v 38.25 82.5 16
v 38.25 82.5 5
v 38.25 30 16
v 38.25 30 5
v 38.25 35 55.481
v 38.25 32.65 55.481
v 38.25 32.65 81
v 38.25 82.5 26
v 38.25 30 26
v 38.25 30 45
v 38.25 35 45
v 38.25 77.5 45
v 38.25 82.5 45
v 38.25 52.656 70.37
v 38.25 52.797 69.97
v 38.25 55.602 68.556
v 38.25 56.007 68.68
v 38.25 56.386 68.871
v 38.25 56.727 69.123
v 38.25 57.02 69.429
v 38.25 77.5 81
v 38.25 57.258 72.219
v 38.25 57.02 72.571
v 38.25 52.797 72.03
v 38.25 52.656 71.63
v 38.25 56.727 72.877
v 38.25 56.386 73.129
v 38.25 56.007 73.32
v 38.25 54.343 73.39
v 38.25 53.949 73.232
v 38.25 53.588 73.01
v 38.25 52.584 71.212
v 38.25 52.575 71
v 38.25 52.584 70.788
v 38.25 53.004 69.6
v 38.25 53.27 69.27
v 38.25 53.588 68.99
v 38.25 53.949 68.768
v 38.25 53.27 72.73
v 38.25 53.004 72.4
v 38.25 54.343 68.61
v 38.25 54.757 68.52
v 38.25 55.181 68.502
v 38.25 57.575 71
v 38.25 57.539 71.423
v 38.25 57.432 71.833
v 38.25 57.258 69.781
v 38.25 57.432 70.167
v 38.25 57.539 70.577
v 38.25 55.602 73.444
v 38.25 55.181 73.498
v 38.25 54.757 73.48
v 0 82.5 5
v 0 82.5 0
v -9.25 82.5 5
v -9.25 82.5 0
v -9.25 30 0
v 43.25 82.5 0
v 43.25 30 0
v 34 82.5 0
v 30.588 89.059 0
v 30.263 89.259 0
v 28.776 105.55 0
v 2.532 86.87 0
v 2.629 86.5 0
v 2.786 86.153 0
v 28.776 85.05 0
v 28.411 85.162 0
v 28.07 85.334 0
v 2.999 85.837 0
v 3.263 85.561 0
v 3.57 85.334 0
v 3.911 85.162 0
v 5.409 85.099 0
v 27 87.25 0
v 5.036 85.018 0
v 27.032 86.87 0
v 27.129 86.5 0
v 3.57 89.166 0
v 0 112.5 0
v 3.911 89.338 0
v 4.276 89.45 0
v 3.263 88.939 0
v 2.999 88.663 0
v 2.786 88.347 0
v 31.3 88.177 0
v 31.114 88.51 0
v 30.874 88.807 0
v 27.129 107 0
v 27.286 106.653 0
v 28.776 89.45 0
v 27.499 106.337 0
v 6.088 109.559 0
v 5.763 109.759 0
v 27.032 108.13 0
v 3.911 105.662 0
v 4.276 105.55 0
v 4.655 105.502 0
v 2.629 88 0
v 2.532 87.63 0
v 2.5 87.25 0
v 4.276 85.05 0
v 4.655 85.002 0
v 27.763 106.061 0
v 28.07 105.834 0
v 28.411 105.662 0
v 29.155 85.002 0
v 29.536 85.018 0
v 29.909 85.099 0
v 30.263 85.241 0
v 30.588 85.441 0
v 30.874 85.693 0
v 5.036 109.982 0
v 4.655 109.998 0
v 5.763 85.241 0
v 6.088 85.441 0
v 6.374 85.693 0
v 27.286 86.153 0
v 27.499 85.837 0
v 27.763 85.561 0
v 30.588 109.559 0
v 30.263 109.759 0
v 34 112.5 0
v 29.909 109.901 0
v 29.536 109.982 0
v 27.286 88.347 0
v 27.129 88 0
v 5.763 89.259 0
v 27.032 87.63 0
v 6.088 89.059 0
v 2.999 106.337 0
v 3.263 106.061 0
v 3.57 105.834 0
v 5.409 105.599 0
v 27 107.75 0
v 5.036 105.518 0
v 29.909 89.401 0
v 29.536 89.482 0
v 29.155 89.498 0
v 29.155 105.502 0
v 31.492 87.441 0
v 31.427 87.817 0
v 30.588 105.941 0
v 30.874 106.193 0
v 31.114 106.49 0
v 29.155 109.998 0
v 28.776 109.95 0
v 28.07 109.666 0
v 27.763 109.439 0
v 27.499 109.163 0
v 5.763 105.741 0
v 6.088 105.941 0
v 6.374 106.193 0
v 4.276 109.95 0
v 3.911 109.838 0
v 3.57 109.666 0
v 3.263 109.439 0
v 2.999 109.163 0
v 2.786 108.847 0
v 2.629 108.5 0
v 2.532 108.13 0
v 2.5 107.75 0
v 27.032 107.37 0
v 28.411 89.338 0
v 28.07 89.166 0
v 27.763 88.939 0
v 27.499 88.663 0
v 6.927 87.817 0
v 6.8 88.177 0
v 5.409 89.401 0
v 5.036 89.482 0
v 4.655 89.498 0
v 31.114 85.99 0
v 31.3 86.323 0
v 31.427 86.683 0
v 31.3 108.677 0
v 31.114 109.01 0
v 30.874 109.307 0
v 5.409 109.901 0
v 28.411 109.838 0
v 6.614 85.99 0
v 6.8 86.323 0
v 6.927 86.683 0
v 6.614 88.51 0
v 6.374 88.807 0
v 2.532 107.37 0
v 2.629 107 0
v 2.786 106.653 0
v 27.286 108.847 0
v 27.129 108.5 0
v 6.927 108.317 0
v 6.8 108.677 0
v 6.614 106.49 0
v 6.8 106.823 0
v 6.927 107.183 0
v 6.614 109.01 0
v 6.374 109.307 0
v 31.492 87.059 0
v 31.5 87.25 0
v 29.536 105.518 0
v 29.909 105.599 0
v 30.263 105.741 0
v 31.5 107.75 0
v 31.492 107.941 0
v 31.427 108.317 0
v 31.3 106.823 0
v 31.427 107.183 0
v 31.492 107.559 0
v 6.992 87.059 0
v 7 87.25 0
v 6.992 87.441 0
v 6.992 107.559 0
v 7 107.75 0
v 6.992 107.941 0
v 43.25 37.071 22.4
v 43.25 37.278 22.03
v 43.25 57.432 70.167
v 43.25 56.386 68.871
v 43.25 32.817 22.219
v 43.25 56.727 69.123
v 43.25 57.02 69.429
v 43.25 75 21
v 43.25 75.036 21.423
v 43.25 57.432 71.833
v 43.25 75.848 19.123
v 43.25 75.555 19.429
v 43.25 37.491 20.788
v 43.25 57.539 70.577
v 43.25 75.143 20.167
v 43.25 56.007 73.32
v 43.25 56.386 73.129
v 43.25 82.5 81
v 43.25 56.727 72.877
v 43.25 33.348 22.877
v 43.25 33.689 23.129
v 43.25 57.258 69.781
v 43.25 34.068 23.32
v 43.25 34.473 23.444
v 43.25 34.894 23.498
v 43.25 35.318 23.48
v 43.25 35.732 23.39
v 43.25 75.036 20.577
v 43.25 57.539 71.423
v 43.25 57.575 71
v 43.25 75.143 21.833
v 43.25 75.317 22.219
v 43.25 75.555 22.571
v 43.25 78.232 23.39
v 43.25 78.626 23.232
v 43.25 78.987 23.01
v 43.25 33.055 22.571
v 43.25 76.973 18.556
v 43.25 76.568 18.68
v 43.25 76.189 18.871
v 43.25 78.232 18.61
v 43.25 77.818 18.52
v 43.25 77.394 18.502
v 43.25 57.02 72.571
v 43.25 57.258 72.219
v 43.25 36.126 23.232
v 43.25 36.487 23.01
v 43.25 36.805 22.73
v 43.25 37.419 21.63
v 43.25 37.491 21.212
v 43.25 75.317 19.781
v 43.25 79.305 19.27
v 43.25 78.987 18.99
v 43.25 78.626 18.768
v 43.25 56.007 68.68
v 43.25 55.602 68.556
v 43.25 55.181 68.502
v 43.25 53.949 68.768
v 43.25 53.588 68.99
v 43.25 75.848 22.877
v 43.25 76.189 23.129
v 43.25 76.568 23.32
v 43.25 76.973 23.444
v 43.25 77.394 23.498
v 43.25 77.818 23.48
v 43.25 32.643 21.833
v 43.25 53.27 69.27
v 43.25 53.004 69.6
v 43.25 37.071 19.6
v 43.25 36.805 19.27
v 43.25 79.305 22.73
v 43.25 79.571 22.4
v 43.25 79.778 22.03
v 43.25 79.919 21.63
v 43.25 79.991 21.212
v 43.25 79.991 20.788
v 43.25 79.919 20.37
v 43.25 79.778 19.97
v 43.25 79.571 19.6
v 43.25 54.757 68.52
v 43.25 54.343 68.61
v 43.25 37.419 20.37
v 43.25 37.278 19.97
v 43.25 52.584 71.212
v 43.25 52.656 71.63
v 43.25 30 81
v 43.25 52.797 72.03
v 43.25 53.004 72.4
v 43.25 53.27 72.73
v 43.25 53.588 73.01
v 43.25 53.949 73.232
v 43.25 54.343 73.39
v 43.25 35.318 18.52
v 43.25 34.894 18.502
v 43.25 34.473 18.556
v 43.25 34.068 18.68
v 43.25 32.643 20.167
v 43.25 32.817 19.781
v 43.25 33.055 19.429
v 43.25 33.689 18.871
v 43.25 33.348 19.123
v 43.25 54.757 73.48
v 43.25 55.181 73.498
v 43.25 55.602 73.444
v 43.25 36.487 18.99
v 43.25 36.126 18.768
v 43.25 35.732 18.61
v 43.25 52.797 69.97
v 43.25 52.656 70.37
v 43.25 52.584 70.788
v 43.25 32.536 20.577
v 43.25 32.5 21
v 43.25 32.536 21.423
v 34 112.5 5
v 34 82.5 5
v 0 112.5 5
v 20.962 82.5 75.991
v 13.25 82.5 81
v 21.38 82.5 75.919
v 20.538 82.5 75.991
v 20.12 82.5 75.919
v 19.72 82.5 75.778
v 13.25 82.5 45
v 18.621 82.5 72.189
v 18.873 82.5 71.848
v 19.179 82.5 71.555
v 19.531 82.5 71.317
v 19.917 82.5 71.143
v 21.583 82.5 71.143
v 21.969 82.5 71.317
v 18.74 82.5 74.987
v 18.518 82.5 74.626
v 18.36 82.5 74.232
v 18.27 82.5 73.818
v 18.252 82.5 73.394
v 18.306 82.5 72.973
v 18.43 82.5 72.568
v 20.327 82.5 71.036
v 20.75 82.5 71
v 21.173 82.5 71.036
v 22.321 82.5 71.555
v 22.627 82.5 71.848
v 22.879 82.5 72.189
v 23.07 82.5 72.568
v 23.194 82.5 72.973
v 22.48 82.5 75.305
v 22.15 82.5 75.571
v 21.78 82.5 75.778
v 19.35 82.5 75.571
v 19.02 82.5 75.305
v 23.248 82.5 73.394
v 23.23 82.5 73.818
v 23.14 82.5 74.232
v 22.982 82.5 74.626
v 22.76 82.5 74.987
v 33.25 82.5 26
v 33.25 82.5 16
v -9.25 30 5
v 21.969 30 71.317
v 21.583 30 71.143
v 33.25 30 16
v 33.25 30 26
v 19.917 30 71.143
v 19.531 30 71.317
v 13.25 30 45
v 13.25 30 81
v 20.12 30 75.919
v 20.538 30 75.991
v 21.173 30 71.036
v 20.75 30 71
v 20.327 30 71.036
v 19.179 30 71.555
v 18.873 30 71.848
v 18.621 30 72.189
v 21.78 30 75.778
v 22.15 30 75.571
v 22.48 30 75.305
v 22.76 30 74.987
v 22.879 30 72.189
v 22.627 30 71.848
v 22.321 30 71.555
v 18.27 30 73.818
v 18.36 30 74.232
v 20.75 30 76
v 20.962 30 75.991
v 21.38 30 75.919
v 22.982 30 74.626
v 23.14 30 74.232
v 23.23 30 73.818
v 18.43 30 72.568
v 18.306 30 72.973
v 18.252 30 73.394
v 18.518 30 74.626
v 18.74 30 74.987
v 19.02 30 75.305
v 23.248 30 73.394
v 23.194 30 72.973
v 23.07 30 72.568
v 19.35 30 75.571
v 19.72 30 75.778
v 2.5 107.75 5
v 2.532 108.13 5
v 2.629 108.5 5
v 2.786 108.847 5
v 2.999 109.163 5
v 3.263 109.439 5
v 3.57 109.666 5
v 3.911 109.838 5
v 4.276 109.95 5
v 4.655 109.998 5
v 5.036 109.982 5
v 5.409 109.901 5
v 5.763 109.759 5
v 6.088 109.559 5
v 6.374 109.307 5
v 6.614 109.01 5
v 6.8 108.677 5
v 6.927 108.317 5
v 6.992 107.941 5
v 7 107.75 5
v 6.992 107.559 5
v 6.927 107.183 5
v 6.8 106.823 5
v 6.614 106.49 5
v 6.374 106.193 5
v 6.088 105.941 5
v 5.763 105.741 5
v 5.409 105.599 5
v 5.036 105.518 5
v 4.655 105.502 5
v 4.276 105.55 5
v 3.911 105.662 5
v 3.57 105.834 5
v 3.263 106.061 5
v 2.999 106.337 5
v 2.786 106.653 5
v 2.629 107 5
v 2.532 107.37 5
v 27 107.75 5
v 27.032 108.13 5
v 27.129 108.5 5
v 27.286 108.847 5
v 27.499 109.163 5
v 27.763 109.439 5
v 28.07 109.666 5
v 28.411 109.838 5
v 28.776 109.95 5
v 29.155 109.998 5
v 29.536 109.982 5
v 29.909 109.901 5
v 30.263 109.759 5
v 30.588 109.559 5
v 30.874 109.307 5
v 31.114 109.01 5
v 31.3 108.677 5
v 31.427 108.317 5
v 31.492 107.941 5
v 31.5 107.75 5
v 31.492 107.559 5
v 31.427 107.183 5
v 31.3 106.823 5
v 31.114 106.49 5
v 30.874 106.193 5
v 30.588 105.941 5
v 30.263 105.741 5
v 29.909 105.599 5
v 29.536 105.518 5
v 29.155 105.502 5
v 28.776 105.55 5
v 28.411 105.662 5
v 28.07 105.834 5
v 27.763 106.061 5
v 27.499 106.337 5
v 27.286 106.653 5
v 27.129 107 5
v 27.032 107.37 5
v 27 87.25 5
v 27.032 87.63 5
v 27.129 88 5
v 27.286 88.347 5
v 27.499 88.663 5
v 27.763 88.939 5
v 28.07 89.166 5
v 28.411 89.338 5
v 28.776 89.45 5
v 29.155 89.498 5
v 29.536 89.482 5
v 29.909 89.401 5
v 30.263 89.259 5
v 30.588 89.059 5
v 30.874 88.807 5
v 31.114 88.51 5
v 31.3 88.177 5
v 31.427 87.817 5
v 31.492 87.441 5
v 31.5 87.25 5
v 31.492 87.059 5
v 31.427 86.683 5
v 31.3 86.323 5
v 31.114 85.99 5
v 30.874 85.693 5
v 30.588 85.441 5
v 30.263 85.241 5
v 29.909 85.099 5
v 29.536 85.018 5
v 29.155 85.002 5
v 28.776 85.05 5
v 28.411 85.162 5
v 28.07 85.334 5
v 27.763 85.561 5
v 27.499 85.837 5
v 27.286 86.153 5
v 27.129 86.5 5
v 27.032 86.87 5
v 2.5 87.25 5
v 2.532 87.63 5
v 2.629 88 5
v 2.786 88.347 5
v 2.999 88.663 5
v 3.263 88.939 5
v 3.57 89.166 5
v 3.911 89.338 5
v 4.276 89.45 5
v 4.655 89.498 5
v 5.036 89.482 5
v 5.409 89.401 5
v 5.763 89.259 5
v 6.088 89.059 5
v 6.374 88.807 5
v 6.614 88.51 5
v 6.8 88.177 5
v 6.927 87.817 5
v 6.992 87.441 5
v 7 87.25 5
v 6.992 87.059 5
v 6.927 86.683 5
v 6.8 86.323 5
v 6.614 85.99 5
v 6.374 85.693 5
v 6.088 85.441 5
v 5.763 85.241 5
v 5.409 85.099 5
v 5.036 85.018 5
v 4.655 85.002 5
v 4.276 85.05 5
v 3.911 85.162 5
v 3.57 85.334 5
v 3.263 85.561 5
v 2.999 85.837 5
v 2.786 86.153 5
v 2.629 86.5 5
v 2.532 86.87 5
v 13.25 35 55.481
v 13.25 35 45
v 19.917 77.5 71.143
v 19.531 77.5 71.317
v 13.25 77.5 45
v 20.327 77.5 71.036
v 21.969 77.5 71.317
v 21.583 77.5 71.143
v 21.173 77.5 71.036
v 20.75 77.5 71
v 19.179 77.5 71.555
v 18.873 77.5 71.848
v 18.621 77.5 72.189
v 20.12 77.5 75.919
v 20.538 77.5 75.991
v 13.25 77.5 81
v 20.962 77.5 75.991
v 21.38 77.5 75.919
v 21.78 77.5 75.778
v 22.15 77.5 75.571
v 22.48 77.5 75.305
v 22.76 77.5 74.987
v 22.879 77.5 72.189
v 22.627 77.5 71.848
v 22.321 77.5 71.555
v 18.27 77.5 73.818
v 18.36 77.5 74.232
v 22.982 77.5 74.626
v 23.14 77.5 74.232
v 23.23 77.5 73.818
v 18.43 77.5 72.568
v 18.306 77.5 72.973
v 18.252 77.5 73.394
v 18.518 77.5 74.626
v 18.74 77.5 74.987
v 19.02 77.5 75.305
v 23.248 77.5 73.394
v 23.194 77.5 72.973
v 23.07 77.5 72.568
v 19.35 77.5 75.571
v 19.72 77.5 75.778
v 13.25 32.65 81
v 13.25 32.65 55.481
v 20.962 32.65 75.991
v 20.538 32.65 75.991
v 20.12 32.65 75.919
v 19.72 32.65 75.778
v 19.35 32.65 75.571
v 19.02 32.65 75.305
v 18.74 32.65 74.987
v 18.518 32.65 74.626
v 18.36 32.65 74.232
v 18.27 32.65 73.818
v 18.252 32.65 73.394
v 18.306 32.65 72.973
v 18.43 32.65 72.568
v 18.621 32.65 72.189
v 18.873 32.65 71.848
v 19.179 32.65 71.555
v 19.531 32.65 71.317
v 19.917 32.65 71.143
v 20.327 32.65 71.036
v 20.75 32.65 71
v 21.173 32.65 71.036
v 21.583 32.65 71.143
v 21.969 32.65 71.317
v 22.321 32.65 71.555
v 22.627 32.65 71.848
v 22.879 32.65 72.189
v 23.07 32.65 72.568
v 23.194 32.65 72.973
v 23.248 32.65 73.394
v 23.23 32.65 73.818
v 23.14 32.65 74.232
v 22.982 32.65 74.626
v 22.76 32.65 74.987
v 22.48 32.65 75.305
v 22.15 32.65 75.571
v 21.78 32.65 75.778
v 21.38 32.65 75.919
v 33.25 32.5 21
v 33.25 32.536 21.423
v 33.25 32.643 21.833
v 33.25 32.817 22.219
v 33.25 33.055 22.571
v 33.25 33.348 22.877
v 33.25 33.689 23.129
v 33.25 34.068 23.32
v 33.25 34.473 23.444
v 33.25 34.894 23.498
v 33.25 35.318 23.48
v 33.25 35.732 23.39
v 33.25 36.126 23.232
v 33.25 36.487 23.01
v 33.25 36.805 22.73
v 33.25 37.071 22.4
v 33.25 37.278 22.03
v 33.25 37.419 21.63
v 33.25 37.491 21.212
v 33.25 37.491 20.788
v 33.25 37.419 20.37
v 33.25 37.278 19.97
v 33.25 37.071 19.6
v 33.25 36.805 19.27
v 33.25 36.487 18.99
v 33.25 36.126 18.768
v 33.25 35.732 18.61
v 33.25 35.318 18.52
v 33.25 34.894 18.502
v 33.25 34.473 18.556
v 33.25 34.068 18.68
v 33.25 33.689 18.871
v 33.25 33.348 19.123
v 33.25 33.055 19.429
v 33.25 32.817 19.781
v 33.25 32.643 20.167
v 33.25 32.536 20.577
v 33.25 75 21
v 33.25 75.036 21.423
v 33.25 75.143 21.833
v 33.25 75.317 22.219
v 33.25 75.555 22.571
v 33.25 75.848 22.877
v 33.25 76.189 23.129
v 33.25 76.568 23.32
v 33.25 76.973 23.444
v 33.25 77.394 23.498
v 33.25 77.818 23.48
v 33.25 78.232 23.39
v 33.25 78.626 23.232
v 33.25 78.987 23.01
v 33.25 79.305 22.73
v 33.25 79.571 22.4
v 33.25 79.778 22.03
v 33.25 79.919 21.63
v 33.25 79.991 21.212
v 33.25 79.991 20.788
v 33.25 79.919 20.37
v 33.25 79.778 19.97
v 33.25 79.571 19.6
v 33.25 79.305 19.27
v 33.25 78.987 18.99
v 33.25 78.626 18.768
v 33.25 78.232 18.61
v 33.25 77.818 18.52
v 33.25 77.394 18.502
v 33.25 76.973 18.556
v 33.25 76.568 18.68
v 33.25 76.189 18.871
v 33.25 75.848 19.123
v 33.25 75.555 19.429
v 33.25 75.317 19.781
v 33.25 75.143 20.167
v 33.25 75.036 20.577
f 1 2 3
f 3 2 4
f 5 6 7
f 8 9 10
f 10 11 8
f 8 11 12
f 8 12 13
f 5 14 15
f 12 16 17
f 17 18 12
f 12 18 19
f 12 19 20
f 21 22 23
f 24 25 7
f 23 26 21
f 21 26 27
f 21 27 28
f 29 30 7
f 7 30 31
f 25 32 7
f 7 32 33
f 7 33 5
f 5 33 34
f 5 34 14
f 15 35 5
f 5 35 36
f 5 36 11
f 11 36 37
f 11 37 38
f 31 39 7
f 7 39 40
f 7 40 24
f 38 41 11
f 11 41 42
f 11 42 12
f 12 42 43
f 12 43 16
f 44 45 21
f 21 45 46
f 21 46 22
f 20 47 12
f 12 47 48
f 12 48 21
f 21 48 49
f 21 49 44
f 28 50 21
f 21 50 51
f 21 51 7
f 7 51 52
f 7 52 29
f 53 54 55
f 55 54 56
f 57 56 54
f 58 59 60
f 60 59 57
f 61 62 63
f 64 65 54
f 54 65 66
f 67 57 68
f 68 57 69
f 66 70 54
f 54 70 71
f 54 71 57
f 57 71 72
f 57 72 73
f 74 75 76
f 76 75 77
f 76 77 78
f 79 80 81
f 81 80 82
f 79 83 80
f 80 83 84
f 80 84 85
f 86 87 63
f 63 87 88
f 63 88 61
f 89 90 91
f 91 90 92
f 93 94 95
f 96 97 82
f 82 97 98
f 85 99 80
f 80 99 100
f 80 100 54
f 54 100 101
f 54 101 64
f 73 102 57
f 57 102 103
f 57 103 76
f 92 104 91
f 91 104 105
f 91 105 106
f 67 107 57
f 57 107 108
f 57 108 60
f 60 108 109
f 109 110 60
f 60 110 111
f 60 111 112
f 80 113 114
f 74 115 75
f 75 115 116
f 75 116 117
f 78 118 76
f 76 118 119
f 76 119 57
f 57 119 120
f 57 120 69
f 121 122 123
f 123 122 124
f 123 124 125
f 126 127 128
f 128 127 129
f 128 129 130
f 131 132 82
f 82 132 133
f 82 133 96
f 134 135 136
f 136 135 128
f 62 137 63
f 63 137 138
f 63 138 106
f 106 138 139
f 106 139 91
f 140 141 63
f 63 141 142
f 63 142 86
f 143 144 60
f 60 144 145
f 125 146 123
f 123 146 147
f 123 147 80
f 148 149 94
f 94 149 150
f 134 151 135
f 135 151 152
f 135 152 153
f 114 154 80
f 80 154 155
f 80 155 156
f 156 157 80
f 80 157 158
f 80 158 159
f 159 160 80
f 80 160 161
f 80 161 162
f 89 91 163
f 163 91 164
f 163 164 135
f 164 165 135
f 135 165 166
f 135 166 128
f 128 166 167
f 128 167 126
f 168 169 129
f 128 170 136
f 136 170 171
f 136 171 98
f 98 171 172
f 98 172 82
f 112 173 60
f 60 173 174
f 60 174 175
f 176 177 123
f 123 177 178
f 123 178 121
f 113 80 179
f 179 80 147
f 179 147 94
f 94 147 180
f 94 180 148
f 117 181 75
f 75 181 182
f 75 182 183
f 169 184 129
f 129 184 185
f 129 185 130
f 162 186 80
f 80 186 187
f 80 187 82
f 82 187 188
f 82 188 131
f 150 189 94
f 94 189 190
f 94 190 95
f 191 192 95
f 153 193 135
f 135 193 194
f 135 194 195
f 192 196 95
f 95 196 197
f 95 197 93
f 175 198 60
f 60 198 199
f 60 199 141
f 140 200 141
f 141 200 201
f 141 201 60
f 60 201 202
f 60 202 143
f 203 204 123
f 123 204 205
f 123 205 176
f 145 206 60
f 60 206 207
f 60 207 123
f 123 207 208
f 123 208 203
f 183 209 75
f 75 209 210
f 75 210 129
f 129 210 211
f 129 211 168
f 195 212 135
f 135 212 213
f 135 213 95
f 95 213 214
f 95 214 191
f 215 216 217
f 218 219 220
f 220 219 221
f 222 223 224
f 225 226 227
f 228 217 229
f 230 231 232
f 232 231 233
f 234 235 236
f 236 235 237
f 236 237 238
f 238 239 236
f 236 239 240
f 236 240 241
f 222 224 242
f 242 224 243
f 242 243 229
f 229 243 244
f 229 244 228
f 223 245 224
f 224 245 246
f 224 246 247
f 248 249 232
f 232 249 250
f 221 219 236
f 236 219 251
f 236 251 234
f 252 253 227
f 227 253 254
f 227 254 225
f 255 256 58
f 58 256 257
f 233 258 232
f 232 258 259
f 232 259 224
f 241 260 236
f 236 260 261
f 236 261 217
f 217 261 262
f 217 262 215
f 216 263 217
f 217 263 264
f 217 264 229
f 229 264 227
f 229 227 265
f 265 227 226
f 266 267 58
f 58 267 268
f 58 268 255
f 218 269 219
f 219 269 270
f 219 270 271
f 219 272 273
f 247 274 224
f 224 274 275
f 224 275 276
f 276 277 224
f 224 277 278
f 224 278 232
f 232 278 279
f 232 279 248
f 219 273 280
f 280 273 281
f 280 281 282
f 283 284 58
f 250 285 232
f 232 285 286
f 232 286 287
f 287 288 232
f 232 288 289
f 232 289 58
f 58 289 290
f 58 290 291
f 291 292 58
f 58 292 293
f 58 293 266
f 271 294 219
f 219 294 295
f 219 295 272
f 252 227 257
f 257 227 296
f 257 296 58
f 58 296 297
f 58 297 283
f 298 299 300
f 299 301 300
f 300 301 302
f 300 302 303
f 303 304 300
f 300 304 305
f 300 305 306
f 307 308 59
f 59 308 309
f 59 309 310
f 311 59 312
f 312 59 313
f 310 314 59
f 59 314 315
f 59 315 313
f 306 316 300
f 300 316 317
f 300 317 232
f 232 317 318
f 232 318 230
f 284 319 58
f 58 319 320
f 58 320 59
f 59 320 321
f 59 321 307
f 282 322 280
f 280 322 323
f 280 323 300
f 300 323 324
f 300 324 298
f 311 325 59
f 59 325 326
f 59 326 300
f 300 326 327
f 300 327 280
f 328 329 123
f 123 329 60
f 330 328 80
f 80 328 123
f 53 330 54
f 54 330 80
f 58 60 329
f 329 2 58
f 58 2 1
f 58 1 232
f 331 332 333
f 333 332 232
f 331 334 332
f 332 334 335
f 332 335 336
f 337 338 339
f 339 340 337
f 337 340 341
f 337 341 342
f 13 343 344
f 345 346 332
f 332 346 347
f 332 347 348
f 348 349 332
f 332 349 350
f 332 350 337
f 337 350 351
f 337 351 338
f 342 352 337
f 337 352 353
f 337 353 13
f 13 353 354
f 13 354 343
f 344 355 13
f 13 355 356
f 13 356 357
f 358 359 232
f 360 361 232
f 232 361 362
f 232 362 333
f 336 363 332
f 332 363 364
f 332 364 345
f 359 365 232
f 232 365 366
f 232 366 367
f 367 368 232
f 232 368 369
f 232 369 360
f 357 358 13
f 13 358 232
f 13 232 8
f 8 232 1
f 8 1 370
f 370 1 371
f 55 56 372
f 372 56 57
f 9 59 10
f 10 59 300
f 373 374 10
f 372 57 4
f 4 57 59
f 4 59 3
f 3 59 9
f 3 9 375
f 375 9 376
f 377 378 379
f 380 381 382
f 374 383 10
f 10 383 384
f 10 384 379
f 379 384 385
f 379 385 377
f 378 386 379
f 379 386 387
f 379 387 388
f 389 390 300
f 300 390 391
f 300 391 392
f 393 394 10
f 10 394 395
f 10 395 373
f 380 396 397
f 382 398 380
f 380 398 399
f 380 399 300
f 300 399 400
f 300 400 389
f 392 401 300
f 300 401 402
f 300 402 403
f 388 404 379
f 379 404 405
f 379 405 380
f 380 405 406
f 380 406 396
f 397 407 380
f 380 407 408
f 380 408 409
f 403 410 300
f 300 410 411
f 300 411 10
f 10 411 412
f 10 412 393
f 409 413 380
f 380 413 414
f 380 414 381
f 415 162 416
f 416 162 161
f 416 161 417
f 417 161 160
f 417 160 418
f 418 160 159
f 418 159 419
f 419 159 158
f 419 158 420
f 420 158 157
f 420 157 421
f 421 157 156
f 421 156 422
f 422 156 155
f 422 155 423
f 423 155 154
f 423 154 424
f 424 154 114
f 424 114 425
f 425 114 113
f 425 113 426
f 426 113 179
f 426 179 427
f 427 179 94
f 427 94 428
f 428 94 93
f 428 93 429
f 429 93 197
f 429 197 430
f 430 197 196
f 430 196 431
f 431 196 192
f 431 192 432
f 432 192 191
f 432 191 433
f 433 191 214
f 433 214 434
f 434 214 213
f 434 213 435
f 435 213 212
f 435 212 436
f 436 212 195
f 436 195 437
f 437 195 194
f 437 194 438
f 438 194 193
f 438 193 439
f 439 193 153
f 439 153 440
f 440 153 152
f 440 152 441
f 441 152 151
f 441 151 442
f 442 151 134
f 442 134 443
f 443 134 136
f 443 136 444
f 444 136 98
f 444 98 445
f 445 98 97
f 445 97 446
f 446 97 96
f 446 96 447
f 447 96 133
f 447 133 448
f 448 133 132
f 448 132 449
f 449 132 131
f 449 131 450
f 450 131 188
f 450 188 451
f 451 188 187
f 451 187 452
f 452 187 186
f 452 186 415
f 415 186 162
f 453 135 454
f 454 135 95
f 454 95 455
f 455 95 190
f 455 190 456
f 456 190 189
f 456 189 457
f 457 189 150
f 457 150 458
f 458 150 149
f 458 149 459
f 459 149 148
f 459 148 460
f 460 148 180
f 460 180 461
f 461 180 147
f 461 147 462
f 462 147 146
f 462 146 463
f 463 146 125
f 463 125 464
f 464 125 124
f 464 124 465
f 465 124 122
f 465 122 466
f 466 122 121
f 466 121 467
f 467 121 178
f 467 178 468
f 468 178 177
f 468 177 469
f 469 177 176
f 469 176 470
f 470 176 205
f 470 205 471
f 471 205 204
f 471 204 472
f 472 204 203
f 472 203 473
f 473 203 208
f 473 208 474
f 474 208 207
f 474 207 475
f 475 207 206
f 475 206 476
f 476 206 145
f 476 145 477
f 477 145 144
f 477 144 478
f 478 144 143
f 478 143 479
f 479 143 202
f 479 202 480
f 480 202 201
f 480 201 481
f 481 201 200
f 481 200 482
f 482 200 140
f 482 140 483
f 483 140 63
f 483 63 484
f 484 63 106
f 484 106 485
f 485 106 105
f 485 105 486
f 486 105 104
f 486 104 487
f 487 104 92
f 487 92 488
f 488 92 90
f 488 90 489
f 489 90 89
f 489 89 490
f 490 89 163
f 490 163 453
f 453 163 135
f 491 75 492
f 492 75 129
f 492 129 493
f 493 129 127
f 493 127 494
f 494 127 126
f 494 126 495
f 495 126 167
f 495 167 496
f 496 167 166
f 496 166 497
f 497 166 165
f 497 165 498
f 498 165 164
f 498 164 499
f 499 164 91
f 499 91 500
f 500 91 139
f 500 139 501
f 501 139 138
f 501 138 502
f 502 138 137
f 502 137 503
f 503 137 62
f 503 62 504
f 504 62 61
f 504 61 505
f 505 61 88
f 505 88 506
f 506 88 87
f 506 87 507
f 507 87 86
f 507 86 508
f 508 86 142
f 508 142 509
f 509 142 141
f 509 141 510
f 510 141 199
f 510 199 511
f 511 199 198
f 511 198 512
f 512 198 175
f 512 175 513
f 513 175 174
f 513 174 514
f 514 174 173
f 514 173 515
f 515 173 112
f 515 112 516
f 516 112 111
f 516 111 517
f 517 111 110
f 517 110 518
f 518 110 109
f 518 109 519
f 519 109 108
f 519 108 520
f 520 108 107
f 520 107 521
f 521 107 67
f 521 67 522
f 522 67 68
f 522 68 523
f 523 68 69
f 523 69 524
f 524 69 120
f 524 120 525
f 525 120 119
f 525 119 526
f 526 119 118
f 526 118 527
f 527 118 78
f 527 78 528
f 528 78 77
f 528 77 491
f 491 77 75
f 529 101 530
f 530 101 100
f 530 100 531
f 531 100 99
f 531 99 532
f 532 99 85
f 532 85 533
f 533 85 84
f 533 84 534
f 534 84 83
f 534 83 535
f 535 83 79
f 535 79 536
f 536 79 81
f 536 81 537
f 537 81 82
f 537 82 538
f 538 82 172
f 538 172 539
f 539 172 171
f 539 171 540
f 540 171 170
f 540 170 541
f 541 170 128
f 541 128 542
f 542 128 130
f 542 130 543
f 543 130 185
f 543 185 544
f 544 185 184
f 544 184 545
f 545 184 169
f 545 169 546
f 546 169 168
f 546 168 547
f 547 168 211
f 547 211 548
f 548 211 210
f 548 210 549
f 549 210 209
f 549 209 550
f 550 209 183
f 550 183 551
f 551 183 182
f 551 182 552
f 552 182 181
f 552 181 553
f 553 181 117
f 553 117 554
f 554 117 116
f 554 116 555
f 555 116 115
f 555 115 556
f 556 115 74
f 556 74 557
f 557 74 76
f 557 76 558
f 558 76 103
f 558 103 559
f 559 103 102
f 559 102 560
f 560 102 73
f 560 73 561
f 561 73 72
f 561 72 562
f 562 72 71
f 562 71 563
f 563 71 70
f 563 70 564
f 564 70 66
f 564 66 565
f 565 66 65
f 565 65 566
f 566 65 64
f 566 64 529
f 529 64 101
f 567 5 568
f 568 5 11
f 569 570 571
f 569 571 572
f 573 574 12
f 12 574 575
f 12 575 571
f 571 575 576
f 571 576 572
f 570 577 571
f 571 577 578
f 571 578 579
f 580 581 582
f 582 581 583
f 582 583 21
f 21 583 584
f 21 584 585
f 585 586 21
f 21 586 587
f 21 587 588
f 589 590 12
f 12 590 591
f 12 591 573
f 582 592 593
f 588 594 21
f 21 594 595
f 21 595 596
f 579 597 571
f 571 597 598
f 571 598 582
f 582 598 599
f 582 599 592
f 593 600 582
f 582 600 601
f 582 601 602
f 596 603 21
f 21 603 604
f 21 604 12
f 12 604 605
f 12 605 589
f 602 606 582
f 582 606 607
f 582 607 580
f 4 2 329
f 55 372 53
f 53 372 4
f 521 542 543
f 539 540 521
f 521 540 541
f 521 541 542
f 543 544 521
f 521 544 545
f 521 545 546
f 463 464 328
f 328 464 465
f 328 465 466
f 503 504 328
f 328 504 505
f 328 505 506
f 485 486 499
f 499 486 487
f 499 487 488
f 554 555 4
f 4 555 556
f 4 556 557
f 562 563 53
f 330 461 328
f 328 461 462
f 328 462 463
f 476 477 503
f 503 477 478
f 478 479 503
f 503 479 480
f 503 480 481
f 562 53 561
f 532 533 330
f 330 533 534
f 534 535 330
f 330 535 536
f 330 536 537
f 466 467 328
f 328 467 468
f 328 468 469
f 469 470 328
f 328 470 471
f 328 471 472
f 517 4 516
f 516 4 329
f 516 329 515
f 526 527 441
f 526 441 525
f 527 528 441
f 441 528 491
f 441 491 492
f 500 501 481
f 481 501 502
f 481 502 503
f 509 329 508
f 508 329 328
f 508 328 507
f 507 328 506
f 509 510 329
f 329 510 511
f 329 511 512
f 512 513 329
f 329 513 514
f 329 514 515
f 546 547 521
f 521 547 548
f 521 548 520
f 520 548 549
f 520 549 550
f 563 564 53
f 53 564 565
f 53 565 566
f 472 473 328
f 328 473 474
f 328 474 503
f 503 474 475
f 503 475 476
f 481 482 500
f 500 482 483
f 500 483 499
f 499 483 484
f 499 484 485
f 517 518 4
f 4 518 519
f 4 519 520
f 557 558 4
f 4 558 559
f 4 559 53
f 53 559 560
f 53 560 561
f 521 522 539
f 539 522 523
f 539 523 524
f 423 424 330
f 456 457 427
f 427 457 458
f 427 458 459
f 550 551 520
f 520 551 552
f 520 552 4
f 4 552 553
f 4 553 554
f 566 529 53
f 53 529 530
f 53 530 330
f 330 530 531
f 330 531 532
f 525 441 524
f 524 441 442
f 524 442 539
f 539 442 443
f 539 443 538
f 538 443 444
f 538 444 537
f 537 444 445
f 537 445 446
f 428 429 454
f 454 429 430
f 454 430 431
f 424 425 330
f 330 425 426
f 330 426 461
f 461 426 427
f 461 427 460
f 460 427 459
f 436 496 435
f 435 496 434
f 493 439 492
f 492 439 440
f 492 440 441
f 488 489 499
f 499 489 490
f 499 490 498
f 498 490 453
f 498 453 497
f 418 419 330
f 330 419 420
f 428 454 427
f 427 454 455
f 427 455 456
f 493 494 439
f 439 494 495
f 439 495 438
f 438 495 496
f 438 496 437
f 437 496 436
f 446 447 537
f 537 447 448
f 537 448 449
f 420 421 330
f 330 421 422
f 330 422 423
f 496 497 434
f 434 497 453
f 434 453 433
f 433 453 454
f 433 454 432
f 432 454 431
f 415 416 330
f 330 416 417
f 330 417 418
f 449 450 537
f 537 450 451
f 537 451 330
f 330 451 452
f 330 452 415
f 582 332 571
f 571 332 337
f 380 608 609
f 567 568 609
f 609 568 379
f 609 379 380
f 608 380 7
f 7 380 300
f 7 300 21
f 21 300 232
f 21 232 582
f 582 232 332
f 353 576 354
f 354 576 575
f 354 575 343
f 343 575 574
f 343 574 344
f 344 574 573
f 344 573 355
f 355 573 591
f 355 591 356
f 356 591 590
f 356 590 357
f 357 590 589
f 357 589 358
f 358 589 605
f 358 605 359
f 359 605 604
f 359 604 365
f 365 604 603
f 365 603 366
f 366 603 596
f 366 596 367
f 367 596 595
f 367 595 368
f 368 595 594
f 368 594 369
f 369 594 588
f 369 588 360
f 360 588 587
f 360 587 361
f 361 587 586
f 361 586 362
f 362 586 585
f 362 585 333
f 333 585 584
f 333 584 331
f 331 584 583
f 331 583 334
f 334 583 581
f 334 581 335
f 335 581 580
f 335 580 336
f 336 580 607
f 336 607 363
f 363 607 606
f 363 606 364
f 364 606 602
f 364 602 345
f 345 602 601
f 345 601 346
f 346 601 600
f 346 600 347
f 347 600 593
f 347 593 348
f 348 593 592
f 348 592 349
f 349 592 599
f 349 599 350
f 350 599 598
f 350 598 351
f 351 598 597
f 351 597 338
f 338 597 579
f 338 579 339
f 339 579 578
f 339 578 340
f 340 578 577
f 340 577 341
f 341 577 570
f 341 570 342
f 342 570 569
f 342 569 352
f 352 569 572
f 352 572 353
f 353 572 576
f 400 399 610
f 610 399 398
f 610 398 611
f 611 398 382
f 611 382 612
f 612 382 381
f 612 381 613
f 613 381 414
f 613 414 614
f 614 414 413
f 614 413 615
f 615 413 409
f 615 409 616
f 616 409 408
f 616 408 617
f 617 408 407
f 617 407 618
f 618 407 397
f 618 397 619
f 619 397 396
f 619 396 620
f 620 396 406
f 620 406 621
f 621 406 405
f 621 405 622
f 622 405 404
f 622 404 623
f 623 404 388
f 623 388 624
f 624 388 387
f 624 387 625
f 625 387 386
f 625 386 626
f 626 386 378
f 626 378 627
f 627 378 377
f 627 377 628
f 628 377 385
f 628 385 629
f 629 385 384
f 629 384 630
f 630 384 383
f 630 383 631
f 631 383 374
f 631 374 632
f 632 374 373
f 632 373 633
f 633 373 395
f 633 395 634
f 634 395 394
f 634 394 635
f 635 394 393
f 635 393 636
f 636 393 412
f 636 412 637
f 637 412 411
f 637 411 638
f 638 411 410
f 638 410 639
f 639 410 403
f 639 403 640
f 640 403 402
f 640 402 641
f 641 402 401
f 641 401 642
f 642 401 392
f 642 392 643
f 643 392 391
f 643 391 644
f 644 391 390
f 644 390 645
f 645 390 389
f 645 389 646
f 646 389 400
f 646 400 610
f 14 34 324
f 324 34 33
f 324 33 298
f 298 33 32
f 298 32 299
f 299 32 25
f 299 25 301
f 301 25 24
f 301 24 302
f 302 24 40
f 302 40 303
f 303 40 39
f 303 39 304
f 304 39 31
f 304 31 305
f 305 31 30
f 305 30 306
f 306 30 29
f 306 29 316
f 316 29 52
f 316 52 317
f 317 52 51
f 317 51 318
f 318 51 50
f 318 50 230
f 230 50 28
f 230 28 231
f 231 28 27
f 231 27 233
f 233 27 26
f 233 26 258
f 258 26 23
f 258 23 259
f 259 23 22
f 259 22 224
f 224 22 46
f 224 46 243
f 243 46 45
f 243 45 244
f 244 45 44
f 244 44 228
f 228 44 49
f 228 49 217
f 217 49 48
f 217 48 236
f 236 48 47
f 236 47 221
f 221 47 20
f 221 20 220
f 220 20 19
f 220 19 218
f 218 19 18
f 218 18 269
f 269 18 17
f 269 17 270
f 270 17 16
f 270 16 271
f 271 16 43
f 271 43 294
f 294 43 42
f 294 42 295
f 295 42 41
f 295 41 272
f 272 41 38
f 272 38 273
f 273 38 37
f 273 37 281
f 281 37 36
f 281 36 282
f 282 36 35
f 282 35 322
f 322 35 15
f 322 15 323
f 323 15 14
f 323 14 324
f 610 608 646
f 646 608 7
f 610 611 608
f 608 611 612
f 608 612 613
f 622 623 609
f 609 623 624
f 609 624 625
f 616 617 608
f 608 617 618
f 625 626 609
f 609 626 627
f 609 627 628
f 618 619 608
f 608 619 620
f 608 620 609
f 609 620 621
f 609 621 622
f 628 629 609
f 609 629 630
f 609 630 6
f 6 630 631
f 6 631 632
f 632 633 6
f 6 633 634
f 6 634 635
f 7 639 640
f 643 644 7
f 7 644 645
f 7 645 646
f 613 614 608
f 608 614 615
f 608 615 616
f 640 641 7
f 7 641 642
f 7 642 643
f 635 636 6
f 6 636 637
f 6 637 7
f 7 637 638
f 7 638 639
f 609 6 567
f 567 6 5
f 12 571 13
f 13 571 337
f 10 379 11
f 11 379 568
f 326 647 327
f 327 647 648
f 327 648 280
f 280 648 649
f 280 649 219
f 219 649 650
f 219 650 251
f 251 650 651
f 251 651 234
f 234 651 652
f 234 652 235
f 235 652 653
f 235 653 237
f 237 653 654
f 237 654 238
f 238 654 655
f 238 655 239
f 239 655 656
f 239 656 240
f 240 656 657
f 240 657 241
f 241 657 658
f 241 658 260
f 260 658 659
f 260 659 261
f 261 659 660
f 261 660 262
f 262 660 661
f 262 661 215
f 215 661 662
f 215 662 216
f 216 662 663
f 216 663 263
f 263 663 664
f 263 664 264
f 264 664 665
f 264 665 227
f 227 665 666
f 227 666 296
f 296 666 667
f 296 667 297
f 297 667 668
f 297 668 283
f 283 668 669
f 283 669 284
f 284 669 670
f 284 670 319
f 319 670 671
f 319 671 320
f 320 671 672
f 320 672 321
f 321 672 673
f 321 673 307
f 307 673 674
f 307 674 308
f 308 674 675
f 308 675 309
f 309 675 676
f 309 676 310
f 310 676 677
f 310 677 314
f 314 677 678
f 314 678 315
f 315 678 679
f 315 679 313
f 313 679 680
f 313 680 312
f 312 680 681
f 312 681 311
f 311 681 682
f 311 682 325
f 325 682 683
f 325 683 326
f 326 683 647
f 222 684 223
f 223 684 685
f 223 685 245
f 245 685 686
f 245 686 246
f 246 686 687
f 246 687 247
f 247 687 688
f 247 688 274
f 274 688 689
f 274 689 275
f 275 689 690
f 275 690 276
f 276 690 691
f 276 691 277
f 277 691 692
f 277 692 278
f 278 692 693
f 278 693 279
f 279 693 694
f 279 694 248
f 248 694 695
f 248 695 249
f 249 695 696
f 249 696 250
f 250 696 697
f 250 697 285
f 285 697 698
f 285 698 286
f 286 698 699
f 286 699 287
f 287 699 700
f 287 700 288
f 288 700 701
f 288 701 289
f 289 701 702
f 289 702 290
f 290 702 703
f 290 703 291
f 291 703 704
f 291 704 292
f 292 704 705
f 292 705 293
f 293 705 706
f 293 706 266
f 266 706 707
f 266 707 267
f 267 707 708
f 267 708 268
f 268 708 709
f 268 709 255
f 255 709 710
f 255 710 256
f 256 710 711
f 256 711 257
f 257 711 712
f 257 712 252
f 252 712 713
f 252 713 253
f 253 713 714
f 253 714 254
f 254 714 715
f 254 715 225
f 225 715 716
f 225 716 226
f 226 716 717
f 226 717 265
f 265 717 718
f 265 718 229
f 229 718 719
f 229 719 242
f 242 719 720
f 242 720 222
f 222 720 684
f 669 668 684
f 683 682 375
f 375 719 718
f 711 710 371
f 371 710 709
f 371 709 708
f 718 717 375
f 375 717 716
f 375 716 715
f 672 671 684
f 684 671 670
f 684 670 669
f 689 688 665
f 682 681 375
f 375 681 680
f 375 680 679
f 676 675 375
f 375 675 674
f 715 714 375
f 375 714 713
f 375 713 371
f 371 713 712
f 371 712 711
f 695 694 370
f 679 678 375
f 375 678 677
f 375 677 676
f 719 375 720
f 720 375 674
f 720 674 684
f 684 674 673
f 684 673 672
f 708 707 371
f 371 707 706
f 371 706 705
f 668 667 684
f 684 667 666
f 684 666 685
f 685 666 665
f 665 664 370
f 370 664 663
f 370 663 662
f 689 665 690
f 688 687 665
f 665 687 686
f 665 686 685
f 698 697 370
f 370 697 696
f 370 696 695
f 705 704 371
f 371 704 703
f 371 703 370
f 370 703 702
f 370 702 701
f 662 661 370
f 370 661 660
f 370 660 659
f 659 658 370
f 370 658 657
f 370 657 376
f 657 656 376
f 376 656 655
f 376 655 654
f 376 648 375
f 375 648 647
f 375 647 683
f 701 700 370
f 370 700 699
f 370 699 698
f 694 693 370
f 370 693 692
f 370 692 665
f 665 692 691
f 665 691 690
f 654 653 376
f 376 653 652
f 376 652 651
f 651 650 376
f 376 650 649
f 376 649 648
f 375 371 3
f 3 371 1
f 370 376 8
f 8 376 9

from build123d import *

# Parameters (mm, degrees)
SKETCH1_R               = 2.25
BOSS_EXTRUDE1_DEPTH     = 5
SKETCH2_W               = 52.5
SKETCH2_H               = 52.5
SKETCH2_W_2             = 42.5
SKETCH2_H_2             = 42.5
BOSS_EXTRUDE2_DEPTH     = 40
BOSS_EXTRUDE3_DEPTH     = 36
CUT_EXTRUDE2_DEPTH      = 121.157448791
CUT_EXTRUDE2_DEPTH_BACK = 121.157448791
SKETCH6_R               = 2.5
CUT_EXTRUDE3_DEPTH      = 149.234611343
CUT_EXTRUDE3_DEPTH_BACK = 149.234611343
SKETCH7_R               = 2.5
SKETCH8_W               = 40
SKETCH8_H               = 36.5
CUT_EXTRUDE4_DEPTH      = 24
SKETCH9_W               = 25
SKETCH9_H               = 25.519409936
CUT_EXTRUDE5_DEPTH      = 2.35
SKETCH10_W              = 5
SKETCH10_H              = 30
CUT_EXTRUDE6_DEPTH      = 119
SKETCH11_W              = 40
SKETCH11_H              = 52.5
CUT_EXTRUDE7_DEPTH      = 47.5
SKETCH12_R              = 2.5
CUT_EXTRUDE8_DEPTH      = 119
BOSS_EXTRUDE4_START     = 5
SKETCH13_W              = 10
SKETCH13_H              = 52.5
SKETCH13_R              = 2.5
BOSS_EXTRUDE4_DEPTH     = 5


with BuildPart() as part:
    # Sketch1 → Boss-Extrude1 (new body)
    with BuildSketch(Plane.XY):
        Polygon((0, 30), (-9.25, 30), (-9.25, 82.5), (0, 82.5), (0, 112.5), (34, 112.5), (34, 82.5), (43.25, 82.5), (43.25, 30), (34, 30), (34, 0), (0, 0), align=None)
        with Locations((4.75, 25.25)):
            Circle(SKETCH1_R, mode=Mode.SUBTRACT)
        with Locations((29.25, 25.25)):
            Circle(SKETCH1_R, mode=Mode.SUBTRACT)
        with Locations((29.25, 4.75)):
            Circle(SKETCH1_R, mode=Mode.SUBTRACT)
        with Locations((4.75, 4.75)):
            Circle(SKETCH1_R, mode=Mode.SUBTRACT)
        with Locations((4.75, 107.75)):
            Circle(SKETCH1_R, mode=Mode.SUBTRACT)
        with Locations((29.25, 107.75)):
            Circle(SKETCH1_R, mode=Mode.SUBTRACT)
        with Locations((29.25, 87.25)):
            Circle(SKETCH1_R, mode=Mode.SUBTRACT)
        with Locations((4.75, 87.25)):
            Circle(SKETCH1_R, mode=Mode.SUBTRACT)
    extrude(amount=BOSS_EXTRUDE1_DEPTH)

    # Sketch2 → Boss-Extrude2 (add)
    with BuildSketch(Plane.XY.offset(5)):
        with Locations((17, 56.25)):
            Rectangle(SKETCH2_W, SKETCH2_H)
        with Locations((17, 56.25)):
            Rectangle(SKETCH2_W_2, SKETCH2_H_2, mode=Mode.SUBTRACT)
    extrude(amount=BOSS_EXTRUDE2_DEPTH)

    # Sketch5 → Boss-Extrude3 (add)
    with BuildSketch(Plane.XY.offset(45)):
        Polygon((43.25, 82.5), (43.25, 30), (13.25, 30), (13.25, 35), (38.25, 35), (38.25, 77.5), (13.25, 77.5), (13.25, 82.5), align=None)
    extrude(amount=BOSS_EXTRUDE3_DEPTH)

    # Sketch6 → Cut-Extrude2 (cut, two sides: drawn at the far end of the back side and taken through both)
    with BuildSketch(Plane.XZ.offset(-77.5).offset(-CUT_EXTRUDE2_DEPTH_BACK)):
        with Locations(Location((20.75, 73.5, 0), (0, 0, 270))):
            Circle(SKETCH6_R)
    extrude(amount=CUT_EXTRUDE2_DEPTH + CUT_EXTRUDE2_DEPTH_BACK, mode=Mode.SUBTRACT)

    # Sketch7 → Cut-Extrude3 (cut, two sides: drawn at the far end of the back side and taken through both)
    with BuildSketch(Plane(origin=(43.25, 0, 0), x_dir=(0, 0, -1), z_dir=(1, 0, 0)).offset(-CUT_EXTRUDE3_DEPTH_BACK)):
        with Locations(Location((-71, 55.075, 0), (0, 0, 90))):
            Circle(SKETCH7_R)
    extrude(amount=CUT_EXTRUDE3_DEPTH + CUT_EXTRUDE3_DEPTH_BACK, mode=Mode.SUBTRACT)

    # Sketch8 → Cut-Extrude4 (cut)
    with BuildSketch(Plane.ZY.offset(9.25)):
        with Locations((25, 56.25)):
            Rectangle(SKETCH8_W, SKETCH8_H)
    extrude(amount=-CUT_EXTRUDE4_DEPTH, mode=Mode.SUBTRACT)

    # Sketch9 → Cut-Extrude5 (cut)
    with BuildSketch(Plane(origin=(0, 35, 0), x_dir=(1, 0, 0), z_dir=(0, 1, 0))):
        with Locations((25.75, -68.240295032)):
            Rectangle(SKETCH9_W, SKETCH9_H)
    extrude(amount=-CUT_EXTRUDE5_DEPTH, mode=Mode.SUBTRACT)

    # Sketch10 → Cut-Extrude6 (cut)
    with BuildSketch(Plane.ZY):
        with Locations((2.5, 15)):
            Rectangle(SKETCH10_W, SKETCH10_H)
    extrude(amount=-CUT_EXTRUDE6_DEPTH, mode=Mode.SUBTRACT)

    # Sketch11 → Cut-Extrude7 (cut)
    with BuildSketch(Plane.ZY.offset(9.25)):
        with Locations((25, 56.25)):
            Rectangle(SKETCH11_W, SKETCH11_H)
    extrude(amount=-CUT_EXTRUDE7_DEPTH, mode=Mode.SUBTRACT)

    # Sketch12 → Cut-Extrude8 (cut)
    with BuildSketch(Plane.ZY.offset(-38.25)):
        with Locations(Location((21, 77.5, 0), (0, 0, 270))):
            Circle(SKETCH12_R)
        with Locations(Location((21, 35, 0), (0, 0, 270))):
            Circle(SKETCH12_R)
    extrude(amount=-CUT_EXTRUDE8_DEPTH, mode=Mode.SUBTRACT)

    # Sketch13 → Boss-Extrude4 (add)
    with BuildSketch(Plane.ZY.offset(-38.25).offset(BOSS_EXTRUDE4_START)):
        with Locations((21, 56.25)):
            Rectangle(SKETCH13_W, SKETCH13_H)
        with Locations(Location((21, 77.5, 0), (0, 0, 270))):
            Circle(SKETCH13_R, mode=Mode.SUBTRACT)
        with Locations(Location((21, 35, 0), (0, 0, 270))):
            Circle(SKETCH13_R, mode=Mode.SUBTRACT)
    extrude(amount=-BOSS_EXTRUDE4_DEPTH)


solid = part.part
